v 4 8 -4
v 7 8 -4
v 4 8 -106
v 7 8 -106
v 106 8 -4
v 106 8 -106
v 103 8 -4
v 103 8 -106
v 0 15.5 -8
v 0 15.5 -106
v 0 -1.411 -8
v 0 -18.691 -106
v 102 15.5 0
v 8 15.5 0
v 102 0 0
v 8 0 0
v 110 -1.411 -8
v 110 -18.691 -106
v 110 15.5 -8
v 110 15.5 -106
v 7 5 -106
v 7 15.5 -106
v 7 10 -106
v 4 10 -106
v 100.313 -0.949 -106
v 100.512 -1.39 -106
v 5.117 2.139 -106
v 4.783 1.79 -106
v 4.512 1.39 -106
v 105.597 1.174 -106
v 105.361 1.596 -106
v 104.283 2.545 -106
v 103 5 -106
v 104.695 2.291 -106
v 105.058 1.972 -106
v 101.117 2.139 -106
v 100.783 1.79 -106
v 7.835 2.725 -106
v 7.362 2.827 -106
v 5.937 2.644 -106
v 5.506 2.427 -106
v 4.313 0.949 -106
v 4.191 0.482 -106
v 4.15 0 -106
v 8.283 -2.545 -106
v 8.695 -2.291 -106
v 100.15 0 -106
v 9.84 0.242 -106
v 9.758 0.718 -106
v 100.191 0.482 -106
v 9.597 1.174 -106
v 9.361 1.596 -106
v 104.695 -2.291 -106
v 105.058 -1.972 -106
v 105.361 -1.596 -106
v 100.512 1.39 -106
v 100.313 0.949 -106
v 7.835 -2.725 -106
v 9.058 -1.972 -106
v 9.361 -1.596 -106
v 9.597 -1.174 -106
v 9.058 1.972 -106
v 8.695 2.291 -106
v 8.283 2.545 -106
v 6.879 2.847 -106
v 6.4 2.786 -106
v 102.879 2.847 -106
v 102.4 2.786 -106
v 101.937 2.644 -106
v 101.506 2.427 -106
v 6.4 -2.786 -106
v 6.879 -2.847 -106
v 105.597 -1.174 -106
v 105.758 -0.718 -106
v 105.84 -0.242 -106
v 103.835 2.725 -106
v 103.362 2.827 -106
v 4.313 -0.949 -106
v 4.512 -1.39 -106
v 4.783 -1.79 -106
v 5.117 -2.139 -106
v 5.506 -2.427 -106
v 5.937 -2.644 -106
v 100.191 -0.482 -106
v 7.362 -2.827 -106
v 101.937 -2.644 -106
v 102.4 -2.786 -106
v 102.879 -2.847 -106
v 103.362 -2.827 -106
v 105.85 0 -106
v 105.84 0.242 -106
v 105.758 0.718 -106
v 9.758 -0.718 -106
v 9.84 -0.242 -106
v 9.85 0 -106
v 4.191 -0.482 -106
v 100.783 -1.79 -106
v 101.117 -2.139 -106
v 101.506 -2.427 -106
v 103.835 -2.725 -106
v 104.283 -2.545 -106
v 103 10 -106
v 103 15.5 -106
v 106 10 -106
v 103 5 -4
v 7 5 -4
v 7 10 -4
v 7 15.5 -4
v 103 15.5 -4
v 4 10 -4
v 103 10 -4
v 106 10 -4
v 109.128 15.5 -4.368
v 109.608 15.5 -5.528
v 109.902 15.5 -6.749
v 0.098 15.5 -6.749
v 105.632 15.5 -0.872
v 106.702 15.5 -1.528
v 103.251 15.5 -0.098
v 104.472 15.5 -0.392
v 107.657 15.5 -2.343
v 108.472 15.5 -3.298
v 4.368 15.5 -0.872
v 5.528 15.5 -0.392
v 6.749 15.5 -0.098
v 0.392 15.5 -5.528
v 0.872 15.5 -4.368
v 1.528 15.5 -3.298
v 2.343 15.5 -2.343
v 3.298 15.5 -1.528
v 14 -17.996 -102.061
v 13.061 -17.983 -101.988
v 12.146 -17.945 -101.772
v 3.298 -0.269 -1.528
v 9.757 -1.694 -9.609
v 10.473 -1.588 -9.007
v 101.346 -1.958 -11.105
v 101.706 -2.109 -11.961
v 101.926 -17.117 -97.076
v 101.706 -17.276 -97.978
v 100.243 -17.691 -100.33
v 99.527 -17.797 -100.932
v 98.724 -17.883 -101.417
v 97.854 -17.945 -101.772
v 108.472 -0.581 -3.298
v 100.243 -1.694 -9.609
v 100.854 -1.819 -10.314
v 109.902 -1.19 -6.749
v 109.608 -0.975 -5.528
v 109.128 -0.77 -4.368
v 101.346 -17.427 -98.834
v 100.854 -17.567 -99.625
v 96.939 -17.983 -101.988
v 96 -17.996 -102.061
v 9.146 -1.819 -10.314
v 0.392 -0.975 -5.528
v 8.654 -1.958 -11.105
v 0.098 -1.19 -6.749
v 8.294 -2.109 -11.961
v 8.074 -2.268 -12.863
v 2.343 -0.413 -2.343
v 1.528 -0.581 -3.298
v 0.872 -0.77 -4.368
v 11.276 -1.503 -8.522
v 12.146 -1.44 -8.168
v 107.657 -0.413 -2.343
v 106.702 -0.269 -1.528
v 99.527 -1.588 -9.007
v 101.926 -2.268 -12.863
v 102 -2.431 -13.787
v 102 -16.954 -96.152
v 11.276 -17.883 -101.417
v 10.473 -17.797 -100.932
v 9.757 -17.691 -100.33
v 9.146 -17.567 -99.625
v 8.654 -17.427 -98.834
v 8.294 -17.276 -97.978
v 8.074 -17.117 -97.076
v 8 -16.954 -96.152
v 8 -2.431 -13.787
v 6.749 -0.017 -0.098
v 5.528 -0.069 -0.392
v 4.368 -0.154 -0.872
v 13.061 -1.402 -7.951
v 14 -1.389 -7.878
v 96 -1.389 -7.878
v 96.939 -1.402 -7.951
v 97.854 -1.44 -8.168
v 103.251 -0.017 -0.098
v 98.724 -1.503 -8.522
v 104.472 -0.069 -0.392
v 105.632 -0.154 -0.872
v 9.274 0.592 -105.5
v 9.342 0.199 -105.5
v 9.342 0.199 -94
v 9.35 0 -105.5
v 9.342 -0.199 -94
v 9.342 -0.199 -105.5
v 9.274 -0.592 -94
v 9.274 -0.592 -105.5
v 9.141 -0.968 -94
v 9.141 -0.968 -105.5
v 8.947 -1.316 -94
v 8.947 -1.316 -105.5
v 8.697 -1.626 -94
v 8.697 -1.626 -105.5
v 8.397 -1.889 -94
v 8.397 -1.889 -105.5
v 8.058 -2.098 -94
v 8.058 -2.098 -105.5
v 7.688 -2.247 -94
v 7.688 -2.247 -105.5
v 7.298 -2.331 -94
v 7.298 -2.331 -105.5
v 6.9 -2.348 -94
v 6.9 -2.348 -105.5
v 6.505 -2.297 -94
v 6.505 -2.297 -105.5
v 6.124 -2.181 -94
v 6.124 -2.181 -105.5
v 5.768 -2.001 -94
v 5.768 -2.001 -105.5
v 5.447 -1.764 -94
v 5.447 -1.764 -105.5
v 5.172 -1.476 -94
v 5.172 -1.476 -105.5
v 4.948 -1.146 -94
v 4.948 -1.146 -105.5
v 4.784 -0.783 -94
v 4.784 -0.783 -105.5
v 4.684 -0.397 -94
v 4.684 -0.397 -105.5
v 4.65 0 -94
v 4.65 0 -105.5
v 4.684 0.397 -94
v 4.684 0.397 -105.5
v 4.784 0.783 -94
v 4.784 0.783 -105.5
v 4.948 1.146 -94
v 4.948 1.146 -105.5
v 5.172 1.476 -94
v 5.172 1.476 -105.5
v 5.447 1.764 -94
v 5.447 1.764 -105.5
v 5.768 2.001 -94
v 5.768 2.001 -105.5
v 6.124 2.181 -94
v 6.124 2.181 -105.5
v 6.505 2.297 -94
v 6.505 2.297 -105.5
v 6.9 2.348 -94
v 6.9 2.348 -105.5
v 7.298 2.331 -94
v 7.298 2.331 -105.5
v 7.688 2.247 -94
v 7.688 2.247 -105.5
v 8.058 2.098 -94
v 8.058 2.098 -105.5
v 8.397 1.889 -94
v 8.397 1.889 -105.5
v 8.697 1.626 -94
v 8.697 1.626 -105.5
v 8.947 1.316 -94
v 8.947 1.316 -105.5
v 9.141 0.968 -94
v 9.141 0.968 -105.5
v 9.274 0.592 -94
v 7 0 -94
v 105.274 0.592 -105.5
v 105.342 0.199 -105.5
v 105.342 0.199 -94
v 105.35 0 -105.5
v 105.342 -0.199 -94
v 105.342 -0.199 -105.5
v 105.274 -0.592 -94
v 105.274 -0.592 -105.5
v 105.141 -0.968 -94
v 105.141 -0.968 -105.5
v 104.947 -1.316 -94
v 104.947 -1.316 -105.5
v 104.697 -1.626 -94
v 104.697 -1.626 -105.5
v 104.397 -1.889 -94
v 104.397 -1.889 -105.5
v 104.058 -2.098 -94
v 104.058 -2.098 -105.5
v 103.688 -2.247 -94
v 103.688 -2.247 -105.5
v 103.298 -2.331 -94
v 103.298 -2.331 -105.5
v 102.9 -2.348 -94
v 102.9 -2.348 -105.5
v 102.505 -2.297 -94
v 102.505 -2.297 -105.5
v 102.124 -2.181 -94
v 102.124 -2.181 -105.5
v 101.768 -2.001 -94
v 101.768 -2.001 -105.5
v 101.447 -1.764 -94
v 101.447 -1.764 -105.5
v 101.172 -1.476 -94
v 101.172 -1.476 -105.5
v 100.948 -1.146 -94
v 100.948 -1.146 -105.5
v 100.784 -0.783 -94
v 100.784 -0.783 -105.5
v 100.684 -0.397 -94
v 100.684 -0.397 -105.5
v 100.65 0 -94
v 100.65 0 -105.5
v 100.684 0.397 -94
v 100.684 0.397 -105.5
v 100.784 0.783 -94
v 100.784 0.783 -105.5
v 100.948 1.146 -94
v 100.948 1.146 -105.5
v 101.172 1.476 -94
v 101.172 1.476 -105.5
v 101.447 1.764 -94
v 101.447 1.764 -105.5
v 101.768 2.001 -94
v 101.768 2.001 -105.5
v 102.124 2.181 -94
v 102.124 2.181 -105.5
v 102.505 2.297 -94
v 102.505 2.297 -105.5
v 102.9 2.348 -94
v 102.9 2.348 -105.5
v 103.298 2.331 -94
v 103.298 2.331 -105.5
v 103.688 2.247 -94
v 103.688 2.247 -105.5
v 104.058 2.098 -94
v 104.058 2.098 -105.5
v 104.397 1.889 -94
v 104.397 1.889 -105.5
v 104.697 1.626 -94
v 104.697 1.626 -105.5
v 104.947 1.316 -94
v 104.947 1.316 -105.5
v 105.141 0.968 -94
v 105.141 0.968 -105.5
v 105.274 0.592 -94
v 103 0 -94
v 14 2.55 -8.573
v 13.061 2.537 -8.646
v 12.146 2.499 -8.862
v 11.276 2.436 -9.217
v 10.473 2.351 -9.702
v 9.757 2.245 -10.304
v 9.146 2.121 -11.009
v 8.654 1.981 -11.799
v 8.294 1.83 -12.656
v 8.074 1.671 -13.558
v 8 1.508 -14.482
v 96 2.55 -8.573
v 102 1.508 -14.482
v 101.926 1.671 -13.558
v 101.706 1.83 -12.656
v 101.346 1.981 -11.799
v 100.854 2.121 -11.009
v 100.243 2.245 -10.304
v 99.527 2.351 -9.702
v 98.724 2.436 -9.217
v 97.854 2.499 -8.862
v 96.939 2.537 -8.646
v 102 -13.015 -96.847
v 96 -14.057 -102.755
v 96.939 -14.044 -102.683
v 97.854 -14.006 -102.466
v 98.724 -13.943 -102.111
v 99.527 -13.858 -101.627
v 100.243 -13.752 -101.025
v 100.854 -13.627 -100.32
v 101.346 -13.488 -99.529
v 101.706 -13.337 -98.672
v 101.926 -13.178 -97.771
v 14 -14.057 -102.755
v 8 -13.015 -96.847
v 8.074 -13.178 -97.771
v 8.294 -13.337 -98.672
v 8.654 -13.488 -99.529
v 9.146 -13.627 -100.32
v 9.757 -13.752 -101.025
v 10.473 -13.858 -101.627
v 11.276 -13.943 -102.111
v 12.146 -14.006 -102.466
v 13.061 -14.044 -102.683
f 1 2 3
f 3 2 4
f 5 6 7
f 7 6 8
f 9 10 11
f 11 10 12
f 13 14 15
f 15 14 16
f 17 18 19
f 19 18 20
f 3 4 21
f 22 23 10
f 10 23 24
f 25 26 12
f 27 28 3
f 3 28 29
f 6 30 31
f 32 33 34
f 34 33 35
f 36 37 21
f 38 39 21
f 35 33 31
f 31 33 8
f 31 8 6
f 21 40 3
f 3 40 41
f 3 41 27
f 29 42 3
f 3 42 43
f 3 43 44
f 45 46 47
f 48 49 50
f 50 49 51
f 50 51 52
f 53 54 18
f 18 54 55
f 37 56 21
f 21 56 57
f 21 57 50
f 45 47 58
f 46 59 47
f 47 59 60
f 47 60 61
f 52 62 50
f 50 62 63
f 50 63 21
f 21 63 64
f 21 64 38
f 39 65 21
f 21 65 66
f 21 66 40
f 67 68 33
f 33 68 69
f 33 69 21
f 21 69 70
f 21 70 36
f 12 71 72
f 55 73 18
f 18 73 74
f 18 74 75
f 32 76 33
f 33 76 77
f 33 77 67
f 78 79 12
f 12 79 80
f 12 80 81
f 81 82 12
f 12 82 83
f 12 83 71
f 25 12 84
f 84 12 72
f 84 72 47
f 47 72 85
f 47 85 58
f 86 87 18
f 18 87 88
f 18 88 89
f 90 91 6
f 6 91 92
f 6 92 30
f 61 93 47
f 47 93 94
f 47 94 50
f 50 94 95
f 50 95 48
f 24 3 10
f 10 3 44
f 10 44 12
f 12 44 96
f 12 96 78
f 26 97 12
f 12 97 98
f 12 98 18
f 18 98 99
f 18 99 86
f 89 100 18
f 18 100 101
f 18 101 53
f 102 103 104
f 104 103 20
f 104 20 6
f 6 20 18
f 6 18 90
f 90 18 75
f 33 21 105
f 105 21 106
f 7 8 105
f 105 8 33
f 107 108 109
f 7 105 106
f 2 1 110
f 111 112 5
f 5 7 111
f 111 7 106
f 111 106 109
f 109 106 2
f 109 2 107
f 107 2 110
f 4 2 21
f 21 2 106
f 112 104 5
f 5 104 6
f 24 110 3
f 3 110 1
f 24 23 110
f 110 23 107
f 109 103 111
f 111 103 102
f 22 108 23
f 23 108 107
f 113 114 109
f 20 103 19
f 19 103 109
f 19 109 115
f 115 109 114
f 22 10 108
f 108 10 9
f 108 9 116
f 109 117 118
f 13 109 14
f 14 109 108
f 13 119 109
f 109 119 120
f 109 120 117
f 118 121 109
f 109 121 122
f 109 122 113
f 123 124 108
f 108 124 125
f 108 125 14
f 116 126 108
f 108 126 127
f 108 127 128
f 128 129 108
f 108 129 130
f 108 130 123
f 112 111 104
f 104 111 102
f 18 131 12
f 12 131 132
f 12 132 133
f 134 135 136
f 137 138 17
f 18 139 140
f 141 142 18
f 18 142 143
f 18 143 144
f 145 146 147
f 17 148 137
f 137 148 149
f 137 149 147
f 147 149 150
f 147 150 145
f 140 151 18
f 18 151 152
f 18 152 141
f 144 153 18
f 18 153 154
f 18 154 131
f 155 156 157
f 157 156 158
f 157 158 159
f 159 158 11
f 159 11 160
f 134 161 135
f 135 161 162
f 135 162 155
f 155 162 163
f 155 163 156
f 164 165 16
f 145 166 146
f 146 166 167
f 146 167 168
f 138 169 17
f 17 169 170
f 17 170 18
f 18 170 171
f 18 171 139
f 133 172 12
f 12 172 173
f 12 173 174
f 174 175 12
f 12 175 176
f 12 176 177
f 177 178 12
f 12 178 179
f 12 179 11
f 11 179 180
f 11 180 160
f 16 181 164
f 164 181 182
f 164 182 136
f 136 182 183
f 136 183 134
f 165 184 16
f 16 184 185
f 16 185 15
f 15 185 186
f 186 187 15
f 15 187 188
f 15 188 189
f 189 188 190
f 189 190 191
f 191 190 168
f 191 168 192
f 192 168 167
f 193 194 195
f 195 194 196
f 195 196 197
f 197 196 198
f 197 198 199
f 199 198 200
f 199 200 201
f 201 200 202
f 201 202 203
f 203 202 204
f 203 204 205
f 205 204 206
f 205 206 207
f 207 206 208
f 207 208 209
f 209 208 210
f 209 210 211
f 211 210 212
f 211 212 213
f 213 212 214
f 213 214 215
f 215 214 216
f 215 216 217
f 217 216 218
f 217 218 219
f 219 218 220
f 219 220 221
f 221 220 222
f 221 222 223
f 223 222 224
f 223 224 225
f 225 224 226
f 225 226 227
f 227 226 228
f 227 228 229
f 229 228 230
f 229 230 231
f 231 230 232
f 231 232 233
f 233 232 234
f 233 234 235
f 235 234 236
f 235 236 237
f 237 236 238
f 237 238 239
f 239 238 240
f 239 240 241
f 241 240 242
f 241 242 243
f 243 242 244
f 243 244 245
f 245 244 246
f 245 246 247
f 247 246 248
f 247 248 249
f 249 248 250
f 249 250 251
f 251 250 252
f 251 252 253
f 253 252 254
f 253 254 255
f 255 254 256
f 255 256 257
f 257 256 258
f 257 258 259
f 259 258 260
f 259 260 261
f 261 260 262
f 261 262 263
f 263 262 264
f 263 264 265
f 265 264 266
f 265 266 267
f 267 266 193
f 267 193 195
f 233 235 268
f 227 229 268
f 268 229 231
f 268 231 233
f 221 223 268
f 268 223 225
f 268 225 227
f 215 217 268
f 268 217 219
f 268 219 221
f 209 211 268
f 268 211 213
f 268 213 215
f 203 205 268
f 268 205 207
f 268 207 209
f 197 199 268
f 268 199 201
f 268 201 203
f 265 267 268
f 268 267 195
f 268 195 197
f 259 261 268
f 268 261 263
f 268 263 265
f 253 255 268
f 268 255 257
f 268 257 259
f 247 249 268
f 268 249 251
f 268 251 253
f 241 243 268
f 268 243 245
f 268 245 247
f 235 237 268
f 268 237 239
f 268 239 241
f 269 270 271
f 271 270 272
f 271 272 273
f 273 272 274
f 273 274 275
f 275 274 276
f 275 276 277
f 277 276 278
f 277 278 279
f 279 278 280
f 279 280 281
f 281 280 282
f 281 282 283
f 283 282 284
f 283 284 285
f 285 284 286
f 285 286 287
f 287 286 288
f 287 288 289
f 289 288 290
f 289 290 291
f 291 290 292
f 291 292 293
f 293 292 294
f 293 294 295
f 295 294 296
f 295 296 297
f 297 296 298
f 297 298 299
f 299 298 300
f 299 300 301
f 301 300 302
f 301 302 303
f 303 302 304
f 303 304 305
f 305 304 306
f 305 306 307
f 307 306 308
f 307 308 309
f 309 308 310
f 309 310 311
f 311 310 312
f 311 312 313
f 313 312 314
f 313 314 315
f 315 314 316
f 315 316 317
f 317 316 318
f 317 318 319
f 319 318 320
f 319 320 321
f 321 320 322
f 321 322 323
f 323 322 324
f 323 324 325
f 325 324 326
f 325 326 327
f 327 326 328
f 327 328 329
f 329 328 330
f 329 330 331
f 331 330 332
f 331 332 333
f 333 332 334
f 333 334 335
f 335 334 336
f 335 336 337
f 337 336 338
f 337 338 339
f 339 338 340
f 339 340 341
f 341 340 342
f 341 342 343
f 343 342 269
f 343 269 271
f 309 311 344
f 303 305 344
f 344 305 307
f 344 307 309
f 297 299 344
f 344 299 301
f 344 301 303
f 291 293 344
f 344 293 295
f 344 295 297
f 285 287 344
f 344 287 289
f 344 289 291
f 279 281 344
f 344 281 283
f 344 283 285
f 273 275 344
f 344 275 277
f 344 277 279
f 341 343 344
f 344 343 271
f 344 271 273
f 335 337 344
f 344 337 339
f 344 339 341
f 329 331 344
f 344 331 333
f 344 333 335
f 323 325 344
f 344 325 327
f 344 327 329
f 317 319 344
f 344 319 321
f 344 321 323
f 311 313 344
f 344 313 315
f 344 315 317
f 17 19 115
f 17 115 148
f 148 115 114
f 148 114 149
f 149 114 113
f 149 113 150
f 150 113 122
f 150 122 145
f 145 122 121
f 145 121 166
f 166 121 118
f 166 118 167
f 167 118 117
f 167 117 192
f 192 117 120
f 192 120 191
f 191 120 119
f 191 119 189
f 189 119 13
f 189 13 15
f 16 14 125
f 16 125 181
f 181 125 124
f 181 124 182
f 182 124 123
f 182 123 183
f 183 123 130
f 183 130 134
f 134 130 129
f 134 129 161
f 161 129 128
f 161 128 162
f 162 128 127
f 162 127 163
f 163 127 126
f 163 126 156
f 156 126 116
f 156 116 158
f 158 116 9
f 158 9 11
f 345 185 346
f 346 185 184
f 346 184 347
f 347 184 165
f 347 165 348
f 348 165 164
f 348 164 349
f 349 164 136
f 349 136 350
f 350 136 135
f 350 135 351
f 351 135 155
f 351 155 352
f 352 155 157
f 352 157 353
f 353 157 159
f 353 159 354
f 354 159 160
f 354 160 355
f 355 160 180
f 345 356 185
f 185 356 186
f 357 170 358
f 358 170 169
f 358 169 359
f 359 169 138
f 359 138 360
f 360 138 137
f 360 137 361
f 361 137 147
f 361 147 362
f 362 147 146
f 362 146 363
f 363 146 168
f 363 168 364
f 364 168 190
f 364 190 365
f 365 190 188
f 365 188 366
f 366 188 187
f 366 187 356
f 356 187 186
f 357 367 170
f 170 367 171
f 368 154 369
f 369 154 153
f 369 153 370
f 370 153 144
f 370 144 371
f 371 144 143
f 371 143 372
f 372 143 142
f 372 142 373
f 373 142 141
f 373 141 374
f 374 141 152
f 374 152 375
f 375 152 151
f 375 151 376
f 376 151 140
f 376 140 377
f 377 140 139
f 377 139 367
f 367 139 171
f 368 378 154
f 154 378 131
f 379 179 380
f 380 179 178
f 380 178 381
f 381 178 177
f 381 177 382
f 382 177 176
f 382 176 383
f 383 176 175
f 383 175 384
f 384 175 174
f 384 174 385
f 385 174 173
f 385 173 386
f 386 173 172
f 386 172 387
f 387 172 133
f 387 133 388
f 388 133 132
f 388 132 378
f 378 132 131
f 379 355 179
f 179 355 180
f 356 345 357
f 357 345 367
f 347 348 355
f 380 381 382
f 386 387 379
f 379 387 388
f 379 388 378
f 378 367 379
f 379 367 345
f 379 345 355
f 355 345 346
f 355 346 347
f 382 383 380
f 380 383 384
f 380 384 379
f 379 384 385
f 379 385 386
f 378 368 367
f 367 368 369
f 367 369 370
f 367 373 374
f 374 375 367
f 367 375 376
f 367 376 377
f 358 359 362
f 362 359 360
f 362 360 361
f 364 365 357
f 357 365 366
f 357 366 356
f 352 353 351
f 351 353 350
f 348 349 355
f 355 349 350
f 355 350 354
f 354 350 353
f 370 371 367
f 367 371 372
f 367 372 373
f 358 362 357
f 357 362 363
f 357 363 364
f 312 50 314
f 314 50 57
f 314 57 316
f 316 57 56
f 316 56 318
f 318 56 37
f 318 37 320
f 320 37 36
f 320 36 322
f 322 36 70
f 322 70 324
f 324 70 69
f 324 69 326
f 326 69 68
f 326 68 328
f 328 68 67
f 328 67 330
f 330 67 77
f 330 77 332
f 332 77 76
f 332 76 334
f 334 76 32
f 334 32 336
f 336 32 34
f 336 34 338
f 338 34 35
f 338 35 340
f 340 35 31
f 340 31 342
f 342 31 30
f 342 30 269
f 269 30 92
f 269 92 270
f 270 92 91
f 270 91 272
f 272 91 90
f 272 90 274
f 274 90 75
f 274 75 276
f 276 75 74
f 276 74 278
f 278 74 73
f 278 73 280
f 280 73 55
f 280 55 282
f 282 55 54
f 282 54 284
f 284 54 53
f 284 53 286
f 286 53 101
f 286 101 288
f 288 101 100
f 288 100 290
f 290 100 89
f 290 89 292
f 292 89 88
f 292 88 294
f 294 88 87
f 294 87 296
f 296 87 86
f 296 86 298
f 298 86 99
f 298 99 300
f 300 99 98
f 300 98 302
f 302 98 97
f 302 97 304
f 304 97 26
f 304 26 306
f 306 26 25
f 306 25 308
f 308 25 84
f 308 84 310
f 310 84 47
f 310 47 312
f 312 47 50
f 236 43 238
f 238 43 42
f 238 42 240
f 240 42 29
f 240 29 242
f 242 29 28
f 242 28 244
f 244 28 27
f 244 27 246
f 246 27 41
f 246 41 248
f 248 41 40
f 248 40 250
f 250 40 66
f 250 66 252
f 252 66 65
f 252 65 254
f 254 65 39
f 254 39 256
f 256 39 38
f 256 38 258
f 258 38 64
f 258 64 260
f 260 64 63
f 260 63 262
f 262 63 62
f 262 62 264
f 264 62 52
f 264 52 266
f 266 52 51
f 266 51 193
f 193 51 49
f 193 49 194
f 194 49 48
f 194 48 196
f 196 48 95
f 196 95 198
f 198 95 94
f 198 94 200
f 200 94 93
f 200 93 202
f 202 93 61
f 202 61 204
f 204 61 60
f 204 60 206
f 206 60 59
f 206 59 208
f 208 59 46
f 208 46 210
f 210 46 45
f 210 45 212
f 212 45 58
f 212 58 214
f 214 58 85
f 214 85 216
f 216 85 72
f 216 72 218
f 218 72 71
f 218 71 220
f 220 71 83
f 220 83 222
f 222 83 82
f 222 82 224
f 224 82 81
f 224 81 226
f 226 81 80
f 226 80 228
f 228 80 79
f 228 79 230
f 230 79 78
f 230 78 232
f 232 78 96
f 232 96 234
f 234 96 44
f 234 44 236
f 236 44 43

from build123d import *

# Parameters (mm, degrees)
ESQUISSE2_W             = 110
ESQUISSE2_H             = 106
BOSS_EXTRU_3_DEPTH      = 5
BOSS_EXTRU_4_DEPTH      = 3
BOSS_EXTRU_5_DEPTH      = 2
BOSS_EXTRU_6_DEPTH      = 5.5
BOSS_EXTRU_7_DEPTH      = 110
ESQUISSE7_R             = 2.35
ENL_V_MAT_EXTRU_1_DEPTH = 12
CONG_3_R                = 8
ENL_V_MAT_EXTRU_2_DEPTH = 4
CHANFREIN1_SIZE         = 0.5


with BuildPart() as part:
    # Esquisse2 → Boss.-Extru.3 (new body)
    with BuildSketch(Plane(origin=(0, 0, 0), x_dir=(1, 0, 0), z_dir=(0, 1, 0))):
        with Locations((55, 53)):
            Rectangle(ESQUISSE2_W, ESQUISSE2_H)
    extrude(amount=BOSS_EXTRU_3_DEPTH)

    # Esquisse3 → Boss.-Extru.4 (add)
    with BuildSketch(Plane(origin=(0, 5, 0), x_dir=(1, 0, 0), z_dir=(0, 1, 0))):
        Polygon((7, 4), (7, 106), (0, 106), (0, 0), (110, 0), (110, 106), (103, 106), (103, 4), align=None)
    extrude(amount=BOSS_EXTRU_4_DEPTH)

    # Esquisse4 → Boss.-Extru.5 (add)
    with BuildSketch(Plane(origin=(0, 8, 0), x_dir=(1, 0, 0), z_dir=(0, 1, 0))):
        Polygon((4, 106), (4, 4), (106, 4), (106, 106), (110, 106), (110, 0), (0, 0), (0, 106), align=None)
    extrude(amount=BOSS_EXTRU_5_DEPTH)

    # Esquisse6 → Boss.-Extru.6 (add)
    with BuildSketch(Plane(origin=(0, 10, 0), x_dir=(1, 0, 0), z_dir=(0, 1, 0))):
        Polygon((0, 106), (7, 106), (7, 4), (103, 4), (103, 106), (110, 106), (110, 4), (110, 0), (0, 0), (0, 4), align=None)
    extrude(amount=BOSS_EXTRU_6_DEPTH)

    # Esquisse8 → Boss.-Extru.7 (add)
    with BuildSketch(Plane(origin=(110, 0, 0), x_dir=(0, 0, -1), z_dir=(1, 0, 0))):
        Polygon((0, 0), (106, 0), (106, -18.690659955), align=None)
    extrude(amount=-BOSS_EXTRU_7_DEPTH)

    # Esquisse7 → Enlèv. mat.-Extru.1 (cut)
    with BuildSketch(Plane(origin=(0, 0, -106), x_dir=(-1, 0, 0), z_dir=(0, 0, -1))):
        with Locations((-103, 0)):
            Circle(ESQUISSE7_R)
        with Locations((-7, 0)):
            Circle(ESQUISSE7_R)
    extrude(amount=-ENL_V_MAT_EXTRU_1_DEPTH, mode=Mode.SUBTRACT)

    # Congé3
    cong_3_edges = [part.edges().sort_by_distance(p)[0] for p in [
        (110, 7.75, 0),
        (0, 7.75, 0),
    ]]
    fillet(cong_3_edges, radius=CONG_3_R)

    # Esquisse9 → Enlèv. mat.-Extru.2 (cut)
    with BuildSketch(Plane(origin=(0, 0, 0), x_dir=(1, 0, 0), z_dir=(0, -0.9848077530122092, 0.17364817766692348))):
        with BuildLine():
            Line((14, -8), (96, -8))
            ThreePointArc((96, -8), (100.242640687, -9.757359313), (102, -14))
            Line((102, -14), (102, -97.63522086))
            ThreePointArc((102, -97.63522086), (100.242640687, -101.877861547), (96, -103.63522086))
            Line((96, -103.63522086), (14, -103.63522086))
            ThreePointArc((14, -103.63522086), (9.757359313, -101.877861547), (8, -97.63522086))
            Line((8, -97.63522086), (8, -14))
            ThreePointArc((8, -14), (9.757359313, -9.757359313), (14, -8))
        make_face()
    extrude(amount=-ENL_V_MAT_EXTRU_2_DEPTH, mode=Mode.SUBTRACT)

    # Chanfrein1
    chanfrein1_edges = [part.edges().sort_by_distance(p)[0] for p in [
        (105.35, 0, -106),
        (9.35, 0, -106),
    ]]
    chamfer(chanfrein1_edges, length=CHANFREIN1_SIZE)


solid = part.part
